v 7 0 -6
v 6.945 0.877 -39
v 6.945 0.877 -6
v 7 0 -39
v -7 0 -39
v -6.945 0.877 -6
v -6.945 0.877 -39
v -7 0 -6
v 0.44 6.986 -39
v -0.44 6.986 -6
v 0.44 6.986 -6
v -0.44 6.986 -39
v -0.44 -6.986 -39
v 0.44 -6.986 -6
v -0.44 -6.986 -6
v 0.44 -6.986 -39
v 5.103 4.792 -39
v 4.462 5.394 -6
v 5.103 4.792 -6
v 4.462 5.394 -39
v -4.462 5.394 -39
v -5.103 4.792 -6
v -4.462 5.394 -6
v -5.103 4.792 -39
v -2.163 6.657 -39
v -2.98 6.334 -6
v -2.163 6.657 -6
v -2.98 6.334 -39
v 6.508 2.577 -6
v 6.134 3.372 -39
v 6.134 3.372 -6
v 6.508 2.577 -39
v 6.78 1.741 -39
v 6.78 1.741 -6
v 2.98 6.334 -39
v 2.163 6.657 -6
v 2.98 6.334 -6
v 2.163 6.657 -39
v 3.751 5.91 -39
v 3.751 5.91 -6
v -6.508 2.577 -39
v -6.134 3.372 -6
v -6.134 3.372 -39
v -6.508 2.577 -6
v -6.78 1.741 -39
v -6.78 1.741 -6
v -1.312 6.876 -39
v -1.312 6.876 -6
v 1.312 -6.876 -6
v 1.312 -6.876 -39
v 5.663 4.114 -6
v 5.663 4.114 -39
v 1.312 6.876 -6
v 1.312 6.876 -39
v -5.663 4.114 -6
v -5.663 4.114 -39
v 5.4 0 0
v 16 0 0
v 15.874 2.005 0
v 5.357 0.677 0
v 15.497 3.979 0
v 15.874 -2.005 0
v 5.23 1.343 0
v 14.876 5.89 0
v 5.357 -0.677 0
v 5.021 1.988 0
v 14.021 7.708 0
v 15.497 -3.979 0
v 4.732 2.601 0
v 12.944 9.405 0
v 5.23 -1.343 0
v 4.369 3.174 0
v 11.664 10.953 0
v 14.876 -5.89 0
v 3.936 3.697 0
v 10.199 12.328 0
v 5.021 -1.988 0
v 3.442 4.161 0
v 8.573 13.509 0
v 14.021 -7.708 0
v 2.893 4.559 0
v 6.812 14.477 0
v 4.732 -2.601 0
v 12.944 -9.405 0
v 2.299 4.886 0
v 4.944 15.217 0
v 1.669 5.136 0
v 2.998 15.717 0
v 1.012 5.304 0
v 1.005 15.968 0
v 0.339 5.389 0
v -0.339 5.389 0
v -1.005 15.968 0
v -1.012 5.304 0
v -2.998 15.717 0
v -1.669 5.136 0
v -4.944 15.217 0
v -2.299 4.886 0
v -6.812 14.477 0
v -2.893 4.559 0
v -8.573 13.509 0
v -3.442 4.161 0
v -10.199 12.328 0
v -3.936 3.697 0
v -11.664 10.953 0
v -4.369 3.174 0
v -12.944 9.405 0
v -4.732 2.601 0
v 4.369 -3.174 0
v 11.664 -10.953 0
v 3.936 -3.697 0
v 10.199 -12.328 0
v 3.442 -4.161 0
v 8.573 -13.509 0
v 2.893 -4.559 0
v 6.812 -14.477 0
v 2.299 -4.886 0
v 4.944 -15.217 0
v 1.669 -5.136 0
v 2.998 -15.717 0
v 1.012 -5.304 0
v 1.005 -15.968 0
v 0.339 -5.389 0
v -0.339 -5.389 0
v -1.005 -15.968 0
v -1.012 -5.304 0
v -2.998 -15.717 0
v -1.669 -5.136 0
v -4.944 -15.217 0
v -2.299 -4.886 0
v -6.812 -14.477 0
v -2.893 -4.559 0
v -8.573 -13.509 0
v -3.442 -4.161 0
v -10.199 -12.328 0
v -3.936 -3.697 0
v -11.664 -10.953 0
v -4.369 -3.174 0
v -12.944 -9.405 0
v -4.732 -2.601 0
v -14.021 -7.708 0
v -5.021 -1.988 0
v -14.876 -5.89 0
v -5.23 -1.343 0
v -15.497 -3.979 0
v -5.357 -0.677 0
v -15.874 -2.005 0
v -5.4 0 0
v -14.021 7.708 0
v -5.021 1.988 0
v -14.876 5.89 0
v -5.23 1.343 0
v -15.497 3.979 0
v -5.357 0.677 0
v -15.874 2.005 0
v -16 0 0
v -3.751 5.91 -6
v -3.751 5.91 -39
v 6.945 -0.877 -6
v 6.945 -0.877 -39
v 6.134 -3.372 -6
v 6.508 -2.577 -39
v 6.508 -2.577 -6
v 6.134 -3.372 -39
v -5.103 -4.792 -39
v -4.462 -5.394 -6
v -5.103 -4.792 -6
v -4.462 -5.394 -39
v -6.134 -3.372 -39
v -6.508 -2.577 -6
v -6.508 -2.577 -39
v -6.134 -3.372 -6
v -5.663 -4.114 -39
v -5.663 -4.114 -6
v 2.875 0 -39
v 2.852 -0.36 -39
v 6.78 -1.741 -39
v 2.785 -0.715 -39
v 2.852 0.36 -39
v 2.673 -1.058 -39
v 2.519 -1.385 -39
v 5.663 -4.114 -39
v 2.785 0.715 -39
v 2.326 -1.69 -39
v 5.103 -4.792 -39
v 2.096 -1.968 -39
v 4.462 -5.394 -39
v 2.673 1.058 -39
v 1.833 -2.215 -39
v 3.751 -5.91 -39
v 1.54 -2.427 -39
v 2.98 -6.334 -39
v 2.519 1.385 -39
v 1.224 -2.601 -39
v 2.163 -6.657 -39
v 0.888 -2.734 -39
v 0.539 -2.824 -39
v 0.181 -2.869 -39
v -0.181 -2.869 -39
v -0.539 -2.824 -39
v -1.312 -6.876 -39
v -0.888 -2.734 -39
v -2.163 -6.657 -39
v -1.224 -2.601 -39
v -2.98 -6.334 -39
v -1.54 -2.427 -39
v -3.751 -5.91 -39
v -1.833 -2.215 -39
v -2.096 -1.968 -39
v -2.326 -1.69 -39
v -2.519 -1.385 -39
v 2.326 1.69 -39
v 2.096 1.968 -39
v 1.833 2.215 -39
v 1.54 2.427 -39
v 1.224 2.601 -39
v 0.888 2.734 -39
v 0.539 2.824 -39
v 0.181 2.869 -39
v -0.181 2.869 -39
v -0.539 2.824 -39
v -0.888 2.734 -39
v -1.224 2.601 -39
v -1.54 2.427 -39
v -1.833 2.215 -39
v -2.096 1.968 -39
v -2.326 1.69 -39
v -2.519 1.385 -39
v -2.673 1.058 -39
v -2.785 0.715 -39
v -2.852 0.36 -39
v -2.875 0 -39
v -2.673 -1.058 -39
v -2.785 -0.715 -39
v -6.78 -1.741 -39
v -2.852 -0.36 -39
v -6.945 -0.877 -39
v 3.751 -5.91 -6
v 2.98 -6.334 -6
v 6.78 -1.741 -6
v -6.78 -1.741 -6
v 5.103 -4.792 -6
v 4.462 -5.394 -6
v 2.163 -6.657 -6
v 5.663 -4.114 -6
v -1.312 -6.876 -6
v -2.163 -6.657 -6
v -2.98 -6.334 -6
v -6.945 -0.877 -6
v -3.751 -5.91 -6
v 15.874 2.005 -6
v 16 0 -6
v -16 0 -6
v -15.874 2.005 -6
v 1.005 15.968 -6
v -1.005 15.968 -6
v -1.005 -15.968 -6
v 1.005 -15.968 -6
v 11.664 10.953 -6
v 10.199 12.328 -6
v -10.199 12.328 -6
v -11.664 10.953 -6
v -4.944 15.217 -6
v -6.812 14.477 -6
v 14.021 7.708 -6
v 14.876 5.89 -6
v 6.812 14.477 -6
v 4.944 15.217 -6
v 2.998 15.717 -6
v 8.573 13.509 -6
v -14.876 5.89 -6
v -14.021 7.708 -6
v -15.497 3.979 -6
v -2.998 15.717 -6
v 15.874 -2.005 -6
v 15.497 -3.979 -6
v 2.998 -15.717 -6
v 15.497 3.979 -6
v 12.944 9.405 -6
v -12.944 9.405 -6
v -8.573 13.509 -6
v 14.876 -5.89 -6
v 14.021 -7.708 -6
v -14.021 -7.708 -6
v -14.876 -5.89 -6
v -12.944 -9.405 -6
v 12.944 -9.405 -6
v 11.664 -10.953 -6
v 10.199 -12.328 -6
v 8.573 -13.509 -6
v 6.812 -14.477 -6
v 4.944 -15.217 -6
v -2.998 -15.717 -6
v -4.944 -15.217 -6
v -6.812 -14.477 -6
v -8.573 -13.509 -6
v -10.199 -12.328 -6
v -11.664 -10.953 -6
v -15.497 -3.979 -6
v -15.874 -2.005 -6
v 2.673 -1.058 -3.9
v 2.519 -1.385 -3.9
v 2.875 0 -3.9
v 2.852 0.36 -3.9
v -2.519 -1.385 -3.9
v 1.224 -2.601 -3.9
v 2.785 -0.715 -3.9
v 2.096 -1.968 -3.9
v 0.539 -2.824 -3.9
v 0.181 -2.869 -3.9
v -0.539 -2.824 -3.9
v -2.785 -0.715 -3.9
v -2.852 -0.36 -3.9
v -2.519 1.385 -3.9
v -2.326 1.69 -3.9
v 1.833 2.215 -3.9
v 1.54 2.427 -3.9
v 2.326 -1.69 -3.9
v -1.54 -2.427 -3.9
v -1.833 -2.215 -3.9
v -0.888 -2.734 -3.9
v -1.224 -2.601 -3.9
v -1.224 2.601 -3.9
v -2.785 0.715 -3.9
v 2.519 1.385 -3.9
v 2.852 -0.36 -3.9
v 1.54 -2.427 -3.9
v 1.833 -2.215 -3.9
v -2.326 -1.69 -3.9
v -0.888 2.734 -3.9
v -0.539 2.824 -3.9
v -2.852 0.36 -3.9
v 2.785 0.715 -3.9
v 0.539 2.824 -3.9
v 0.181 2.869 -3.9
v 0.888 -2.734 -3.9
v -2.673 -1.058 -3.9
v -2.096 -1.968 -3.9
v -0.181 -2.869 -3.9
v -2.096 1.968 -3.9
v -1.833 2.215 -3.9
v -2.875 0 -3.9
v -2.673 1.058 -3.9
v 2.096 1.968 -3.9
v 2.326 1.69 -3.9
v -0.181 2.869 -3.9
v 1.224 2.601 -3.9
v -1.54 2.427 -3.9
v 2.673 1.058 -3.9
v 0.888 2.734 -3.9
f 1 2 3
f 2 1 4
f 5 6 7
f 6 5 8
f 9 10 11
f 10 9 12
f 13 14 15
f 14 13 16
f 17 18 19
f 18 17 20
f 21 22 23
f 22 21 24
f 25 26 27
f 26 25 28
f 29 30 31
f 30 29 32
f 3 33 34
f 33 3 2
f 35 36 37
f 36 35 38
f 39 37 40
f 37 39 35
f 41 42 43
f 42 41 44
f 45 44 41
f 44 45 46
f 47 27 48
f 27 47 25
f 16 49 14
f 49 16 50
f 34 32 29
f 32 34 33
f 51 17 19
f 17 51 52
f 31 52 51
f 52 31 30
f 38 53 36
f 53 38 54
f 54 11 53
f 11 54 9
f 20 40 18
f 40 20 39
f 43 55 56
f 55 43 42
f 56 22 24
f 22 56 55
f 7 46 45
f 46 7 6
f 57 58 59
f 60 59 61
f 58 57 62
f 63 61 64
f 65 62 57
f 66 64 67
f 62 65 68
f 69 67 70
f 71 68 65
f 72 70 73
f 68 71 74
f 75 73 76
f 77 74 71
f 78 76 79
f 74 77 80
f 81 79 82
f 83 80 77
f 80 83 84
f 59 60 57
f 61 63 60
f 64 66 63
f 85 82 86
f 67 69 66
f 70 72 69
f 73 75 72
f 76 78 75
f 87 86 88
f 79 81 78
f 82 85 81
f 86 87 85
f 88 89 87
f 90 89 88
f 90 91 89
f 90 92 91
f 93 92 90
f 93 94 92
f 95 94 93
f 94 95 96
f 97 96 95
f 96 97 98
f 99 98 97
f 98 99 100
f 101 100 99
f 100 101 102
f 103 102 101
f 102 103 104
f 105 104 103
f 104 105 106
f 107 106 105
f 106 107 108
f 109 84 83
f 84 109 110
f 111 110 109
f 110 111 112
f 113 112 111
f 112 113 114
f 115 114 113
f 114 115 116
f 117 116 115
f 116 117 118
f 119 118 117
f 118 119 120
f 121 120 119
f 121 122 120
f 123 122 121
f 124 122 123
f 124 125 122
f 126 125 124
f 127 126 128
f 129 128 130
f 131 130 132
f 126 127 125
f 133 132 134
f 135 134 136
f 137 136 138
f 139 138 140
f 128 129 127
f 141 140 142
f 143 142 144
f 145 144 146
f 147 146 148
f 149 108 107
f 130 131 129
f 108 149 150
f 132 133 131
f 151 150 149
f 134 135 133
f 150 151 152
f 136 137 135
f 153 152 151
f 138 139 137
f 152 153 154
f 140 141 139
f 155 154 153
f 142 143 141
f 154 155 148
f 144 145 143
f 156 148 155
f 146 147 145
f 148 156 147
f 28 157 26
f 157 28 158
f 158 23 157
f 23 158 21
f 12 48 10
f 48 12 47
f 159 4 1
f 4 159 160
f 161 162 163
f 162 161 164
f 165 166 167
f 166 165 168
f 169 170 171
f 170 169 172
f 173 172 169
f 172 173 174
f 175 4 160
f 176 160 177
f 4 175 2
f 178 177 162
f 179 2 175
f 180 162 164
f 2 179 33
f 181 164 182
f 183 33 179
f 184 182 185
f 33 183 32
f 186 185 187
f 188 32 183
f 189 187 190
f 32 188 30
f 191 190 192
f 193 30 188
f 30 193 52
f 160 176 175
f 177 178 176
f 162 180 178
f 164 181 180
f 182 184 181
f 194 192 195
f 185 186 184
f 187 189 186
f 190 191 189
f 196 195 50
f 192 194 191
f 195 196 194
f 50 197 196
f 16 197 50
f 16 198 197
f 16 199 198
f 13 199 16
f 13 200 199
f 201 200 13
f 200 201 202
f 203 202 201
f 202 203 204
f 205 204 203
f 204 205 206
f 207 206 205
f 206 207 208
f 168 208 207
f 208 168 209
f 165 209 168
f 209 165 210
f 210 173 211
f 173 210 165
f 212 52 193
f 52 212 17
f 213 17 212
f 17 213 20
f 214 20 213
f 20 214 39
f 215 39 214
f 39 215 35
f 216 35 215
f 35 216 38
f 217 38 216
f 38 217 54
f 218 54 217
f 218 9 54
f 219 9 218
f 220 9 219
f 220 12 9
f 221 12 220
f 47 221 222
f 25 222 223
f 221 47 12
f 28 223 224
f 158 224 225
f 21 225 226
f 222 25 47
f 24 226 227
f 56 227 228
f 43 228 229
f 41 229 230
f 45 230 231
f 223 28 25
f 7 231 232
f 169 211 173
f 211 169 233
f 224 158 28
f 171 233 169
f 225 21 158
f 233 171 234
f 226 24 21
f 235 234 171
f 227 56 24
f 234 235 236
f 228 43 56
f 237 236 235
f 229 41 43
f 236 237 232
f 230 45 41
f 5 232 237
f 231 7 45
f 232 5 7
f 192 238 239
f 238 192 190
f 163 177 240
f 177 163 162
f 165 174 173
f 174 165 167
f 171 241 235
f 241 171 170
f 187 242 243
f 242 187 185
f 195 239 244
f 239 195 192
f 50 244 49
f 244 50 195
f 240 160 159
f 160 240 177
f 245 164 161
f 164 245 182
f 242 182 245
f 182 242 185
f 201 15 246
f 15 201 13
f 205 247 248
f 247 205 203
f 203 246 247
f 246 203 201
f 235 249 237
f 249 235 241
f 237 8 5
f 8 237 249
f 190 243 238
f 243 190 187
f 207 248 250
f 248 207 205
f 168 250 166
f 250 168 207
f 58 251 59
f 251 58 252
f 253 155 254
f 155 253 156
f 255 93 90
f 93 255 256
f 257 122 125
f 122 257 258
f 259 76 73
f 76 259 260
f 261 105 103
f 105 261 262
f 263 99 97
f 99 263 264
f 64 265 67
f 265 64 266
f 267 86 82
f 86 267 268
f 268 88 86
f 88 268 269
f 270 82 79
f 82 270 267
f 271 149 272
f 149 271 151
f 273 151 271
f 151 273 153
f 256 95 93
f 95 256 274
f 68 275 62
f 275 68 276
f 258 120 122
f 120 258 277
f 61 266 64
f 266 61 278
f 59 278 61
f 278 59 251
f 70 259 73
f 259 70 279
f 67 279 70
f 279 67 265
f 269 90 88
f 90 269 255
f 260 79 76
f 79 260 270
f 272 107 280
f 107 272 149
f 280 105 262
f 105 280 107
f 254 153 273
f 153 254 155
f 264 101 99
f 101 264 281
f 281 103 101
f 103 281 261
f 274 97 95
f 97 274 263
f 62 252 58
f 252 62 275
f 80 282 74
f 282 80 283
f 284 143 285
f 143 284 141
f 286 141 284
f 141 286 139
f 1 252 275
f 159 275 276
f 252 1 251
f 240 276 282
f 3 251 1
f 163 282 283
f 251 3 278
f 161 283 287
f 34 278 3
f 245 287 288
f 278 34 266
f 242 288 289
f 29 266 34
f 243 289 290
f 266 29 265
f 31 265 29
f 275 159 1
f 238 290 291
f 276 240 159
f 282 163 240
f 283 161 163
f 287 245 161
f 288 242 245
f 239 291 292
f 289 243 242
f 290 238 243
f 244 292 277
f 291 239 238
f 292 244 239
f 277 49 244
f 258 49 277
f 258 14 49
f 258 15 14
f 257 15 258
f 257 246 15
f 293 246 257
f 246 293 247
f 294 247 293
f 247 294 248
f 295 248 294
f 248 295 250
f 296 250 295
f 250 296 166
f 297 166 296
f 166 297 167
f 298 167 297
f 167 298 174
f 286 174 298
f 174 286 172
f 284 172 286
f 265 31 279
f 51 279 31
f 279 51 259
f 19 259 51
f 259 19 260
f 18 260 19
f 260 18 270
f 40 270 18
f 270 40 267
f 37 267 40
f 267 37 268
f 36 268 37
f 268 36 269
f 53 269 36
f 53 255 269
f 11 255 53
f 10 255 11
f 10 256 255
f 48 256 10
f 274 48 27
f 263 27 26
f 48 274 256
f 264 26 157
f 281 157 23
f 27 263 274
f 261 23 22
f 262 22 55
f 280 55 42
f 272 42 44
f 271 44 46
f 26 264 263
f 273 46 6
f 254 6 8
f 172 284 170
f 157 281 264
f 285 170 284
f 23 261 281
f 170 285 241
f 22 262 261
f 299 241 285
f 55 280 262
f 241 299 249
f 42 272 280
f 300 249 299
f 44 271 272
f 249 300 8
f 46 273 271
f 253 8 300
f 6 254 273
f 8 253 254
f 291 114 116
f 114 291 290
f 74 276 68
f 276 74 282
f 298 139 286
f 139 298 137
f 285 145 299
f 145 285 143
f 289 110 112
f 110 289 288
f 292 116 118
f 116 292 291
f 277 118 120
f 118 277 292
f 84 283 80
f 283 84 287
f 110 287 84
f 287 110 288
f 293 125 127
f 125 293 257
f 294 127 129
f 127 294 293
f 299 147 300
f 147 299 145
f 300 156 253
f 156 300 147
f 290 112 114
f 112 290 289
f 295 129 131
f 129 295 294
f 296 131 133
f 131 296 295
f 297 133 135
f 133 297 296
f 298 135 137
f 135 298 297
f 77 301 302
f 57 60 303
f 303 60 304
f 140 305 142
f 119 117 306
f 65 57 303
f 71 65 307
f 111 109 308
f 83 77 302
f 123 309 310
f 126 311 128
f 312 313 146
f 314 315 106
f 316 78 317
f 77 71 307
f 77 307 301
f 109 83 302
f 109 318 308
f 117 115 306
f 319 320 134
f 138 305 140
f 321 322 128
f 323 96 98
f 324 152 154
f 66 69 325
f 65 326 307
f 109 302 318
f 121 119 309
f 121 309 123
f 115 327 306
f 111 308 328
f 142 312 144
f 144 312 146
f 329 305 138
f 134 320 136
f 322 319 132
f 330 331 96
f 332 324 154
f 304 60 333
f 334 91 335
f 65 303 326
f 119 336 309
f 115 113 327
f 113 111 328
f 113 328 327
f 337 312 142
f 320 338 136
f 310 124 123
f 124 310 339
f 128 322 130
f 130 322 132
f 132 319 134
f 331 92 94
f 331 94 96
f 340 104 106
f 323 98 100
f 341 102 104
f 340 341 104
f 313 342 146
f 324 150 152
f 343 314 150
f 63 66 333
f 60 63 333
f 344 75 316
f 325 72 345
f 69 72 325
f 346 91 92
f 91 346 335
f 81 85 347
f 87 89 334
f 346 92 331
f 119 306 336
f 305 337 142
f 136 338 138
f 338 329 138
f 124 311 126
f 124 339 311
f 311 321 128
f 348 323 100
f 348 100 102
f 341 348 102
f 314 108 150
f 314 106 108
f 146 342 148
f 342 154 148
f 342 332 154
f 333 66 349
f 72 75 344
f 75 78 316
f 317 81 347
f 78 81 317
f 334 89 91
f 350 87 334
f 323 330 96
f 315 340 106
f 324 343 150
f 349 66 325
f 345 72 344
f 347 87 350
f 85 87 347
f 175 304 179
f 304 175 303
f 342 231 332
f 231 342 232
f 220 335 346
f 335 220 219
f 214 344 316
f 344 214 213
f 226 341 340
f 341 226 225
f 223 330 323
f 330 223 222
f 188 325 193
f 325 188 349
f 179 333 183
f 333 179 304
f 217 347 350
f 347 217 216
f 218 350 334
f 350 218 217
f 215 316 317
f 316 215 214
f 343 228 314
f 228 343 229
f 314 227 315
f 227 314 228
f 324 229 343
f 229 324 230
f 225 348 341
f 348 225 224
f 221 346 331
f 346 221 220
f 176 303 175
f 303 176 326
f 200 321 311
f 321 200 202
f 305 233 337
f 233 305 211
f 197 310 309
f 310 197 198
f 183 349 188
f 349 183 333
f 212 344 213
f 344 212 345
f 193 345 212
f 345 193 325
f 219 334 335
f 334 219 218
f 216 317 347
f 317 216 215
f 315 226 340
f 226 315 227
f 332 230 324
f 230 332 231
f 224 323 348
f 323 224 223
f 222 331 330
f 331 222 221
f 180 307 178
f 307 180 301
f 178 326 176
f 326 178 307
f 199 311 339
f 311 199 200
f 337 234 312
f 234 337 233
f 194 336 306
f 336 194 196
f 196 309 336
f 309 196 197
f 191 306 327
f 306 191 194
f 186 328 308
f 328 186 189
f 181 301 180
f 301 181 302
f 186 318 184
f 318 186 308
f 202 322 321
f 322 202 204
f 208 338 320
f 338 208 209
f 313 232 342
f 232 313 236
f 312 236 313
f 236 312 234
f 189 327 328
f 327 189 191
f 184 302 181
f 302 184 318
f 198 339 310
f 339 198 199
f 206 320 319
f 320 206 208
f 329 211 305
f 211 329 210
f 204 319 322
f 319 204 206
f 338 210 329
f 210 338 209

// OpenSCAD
$fn = 50;


difference() {
	union() {
		translate(v = [0, 0, -39.0000000000]) {
			cylinder(h = 39, r = 7.0000000000);
		}
		translate(v = [0, 0, -6.0000000000]) {
			cylinder(h = 6, r = 16.0000000000);
		}
	}
	union() {
		translate(v = [0, 0, 0]) {
			rotate(a = [0, 0, 0]) {
				difference() {
					union() {
						#translate(v = [0, 0, -39.0000000000]) {
							cylinder(h = 39, r = 2.6000000000);
						}
						#translate(v = [0, 0, -3.9000000000]) {
							cylinder(h = 3.9000000000, r1 = 2.8750000000, r2 = 5.4000000000);
						}
						#translate(v = [0, 0, -39.0000000000]) {
							cylinder(h = 39, r = 2.8750000000);
						}
						#translate(v = [0, 0, -39.0000000000]) {
							cylinder(h = 39, r = 2.6000000000);
						}
					}
					union();
				}
			}
		}
	}
}
